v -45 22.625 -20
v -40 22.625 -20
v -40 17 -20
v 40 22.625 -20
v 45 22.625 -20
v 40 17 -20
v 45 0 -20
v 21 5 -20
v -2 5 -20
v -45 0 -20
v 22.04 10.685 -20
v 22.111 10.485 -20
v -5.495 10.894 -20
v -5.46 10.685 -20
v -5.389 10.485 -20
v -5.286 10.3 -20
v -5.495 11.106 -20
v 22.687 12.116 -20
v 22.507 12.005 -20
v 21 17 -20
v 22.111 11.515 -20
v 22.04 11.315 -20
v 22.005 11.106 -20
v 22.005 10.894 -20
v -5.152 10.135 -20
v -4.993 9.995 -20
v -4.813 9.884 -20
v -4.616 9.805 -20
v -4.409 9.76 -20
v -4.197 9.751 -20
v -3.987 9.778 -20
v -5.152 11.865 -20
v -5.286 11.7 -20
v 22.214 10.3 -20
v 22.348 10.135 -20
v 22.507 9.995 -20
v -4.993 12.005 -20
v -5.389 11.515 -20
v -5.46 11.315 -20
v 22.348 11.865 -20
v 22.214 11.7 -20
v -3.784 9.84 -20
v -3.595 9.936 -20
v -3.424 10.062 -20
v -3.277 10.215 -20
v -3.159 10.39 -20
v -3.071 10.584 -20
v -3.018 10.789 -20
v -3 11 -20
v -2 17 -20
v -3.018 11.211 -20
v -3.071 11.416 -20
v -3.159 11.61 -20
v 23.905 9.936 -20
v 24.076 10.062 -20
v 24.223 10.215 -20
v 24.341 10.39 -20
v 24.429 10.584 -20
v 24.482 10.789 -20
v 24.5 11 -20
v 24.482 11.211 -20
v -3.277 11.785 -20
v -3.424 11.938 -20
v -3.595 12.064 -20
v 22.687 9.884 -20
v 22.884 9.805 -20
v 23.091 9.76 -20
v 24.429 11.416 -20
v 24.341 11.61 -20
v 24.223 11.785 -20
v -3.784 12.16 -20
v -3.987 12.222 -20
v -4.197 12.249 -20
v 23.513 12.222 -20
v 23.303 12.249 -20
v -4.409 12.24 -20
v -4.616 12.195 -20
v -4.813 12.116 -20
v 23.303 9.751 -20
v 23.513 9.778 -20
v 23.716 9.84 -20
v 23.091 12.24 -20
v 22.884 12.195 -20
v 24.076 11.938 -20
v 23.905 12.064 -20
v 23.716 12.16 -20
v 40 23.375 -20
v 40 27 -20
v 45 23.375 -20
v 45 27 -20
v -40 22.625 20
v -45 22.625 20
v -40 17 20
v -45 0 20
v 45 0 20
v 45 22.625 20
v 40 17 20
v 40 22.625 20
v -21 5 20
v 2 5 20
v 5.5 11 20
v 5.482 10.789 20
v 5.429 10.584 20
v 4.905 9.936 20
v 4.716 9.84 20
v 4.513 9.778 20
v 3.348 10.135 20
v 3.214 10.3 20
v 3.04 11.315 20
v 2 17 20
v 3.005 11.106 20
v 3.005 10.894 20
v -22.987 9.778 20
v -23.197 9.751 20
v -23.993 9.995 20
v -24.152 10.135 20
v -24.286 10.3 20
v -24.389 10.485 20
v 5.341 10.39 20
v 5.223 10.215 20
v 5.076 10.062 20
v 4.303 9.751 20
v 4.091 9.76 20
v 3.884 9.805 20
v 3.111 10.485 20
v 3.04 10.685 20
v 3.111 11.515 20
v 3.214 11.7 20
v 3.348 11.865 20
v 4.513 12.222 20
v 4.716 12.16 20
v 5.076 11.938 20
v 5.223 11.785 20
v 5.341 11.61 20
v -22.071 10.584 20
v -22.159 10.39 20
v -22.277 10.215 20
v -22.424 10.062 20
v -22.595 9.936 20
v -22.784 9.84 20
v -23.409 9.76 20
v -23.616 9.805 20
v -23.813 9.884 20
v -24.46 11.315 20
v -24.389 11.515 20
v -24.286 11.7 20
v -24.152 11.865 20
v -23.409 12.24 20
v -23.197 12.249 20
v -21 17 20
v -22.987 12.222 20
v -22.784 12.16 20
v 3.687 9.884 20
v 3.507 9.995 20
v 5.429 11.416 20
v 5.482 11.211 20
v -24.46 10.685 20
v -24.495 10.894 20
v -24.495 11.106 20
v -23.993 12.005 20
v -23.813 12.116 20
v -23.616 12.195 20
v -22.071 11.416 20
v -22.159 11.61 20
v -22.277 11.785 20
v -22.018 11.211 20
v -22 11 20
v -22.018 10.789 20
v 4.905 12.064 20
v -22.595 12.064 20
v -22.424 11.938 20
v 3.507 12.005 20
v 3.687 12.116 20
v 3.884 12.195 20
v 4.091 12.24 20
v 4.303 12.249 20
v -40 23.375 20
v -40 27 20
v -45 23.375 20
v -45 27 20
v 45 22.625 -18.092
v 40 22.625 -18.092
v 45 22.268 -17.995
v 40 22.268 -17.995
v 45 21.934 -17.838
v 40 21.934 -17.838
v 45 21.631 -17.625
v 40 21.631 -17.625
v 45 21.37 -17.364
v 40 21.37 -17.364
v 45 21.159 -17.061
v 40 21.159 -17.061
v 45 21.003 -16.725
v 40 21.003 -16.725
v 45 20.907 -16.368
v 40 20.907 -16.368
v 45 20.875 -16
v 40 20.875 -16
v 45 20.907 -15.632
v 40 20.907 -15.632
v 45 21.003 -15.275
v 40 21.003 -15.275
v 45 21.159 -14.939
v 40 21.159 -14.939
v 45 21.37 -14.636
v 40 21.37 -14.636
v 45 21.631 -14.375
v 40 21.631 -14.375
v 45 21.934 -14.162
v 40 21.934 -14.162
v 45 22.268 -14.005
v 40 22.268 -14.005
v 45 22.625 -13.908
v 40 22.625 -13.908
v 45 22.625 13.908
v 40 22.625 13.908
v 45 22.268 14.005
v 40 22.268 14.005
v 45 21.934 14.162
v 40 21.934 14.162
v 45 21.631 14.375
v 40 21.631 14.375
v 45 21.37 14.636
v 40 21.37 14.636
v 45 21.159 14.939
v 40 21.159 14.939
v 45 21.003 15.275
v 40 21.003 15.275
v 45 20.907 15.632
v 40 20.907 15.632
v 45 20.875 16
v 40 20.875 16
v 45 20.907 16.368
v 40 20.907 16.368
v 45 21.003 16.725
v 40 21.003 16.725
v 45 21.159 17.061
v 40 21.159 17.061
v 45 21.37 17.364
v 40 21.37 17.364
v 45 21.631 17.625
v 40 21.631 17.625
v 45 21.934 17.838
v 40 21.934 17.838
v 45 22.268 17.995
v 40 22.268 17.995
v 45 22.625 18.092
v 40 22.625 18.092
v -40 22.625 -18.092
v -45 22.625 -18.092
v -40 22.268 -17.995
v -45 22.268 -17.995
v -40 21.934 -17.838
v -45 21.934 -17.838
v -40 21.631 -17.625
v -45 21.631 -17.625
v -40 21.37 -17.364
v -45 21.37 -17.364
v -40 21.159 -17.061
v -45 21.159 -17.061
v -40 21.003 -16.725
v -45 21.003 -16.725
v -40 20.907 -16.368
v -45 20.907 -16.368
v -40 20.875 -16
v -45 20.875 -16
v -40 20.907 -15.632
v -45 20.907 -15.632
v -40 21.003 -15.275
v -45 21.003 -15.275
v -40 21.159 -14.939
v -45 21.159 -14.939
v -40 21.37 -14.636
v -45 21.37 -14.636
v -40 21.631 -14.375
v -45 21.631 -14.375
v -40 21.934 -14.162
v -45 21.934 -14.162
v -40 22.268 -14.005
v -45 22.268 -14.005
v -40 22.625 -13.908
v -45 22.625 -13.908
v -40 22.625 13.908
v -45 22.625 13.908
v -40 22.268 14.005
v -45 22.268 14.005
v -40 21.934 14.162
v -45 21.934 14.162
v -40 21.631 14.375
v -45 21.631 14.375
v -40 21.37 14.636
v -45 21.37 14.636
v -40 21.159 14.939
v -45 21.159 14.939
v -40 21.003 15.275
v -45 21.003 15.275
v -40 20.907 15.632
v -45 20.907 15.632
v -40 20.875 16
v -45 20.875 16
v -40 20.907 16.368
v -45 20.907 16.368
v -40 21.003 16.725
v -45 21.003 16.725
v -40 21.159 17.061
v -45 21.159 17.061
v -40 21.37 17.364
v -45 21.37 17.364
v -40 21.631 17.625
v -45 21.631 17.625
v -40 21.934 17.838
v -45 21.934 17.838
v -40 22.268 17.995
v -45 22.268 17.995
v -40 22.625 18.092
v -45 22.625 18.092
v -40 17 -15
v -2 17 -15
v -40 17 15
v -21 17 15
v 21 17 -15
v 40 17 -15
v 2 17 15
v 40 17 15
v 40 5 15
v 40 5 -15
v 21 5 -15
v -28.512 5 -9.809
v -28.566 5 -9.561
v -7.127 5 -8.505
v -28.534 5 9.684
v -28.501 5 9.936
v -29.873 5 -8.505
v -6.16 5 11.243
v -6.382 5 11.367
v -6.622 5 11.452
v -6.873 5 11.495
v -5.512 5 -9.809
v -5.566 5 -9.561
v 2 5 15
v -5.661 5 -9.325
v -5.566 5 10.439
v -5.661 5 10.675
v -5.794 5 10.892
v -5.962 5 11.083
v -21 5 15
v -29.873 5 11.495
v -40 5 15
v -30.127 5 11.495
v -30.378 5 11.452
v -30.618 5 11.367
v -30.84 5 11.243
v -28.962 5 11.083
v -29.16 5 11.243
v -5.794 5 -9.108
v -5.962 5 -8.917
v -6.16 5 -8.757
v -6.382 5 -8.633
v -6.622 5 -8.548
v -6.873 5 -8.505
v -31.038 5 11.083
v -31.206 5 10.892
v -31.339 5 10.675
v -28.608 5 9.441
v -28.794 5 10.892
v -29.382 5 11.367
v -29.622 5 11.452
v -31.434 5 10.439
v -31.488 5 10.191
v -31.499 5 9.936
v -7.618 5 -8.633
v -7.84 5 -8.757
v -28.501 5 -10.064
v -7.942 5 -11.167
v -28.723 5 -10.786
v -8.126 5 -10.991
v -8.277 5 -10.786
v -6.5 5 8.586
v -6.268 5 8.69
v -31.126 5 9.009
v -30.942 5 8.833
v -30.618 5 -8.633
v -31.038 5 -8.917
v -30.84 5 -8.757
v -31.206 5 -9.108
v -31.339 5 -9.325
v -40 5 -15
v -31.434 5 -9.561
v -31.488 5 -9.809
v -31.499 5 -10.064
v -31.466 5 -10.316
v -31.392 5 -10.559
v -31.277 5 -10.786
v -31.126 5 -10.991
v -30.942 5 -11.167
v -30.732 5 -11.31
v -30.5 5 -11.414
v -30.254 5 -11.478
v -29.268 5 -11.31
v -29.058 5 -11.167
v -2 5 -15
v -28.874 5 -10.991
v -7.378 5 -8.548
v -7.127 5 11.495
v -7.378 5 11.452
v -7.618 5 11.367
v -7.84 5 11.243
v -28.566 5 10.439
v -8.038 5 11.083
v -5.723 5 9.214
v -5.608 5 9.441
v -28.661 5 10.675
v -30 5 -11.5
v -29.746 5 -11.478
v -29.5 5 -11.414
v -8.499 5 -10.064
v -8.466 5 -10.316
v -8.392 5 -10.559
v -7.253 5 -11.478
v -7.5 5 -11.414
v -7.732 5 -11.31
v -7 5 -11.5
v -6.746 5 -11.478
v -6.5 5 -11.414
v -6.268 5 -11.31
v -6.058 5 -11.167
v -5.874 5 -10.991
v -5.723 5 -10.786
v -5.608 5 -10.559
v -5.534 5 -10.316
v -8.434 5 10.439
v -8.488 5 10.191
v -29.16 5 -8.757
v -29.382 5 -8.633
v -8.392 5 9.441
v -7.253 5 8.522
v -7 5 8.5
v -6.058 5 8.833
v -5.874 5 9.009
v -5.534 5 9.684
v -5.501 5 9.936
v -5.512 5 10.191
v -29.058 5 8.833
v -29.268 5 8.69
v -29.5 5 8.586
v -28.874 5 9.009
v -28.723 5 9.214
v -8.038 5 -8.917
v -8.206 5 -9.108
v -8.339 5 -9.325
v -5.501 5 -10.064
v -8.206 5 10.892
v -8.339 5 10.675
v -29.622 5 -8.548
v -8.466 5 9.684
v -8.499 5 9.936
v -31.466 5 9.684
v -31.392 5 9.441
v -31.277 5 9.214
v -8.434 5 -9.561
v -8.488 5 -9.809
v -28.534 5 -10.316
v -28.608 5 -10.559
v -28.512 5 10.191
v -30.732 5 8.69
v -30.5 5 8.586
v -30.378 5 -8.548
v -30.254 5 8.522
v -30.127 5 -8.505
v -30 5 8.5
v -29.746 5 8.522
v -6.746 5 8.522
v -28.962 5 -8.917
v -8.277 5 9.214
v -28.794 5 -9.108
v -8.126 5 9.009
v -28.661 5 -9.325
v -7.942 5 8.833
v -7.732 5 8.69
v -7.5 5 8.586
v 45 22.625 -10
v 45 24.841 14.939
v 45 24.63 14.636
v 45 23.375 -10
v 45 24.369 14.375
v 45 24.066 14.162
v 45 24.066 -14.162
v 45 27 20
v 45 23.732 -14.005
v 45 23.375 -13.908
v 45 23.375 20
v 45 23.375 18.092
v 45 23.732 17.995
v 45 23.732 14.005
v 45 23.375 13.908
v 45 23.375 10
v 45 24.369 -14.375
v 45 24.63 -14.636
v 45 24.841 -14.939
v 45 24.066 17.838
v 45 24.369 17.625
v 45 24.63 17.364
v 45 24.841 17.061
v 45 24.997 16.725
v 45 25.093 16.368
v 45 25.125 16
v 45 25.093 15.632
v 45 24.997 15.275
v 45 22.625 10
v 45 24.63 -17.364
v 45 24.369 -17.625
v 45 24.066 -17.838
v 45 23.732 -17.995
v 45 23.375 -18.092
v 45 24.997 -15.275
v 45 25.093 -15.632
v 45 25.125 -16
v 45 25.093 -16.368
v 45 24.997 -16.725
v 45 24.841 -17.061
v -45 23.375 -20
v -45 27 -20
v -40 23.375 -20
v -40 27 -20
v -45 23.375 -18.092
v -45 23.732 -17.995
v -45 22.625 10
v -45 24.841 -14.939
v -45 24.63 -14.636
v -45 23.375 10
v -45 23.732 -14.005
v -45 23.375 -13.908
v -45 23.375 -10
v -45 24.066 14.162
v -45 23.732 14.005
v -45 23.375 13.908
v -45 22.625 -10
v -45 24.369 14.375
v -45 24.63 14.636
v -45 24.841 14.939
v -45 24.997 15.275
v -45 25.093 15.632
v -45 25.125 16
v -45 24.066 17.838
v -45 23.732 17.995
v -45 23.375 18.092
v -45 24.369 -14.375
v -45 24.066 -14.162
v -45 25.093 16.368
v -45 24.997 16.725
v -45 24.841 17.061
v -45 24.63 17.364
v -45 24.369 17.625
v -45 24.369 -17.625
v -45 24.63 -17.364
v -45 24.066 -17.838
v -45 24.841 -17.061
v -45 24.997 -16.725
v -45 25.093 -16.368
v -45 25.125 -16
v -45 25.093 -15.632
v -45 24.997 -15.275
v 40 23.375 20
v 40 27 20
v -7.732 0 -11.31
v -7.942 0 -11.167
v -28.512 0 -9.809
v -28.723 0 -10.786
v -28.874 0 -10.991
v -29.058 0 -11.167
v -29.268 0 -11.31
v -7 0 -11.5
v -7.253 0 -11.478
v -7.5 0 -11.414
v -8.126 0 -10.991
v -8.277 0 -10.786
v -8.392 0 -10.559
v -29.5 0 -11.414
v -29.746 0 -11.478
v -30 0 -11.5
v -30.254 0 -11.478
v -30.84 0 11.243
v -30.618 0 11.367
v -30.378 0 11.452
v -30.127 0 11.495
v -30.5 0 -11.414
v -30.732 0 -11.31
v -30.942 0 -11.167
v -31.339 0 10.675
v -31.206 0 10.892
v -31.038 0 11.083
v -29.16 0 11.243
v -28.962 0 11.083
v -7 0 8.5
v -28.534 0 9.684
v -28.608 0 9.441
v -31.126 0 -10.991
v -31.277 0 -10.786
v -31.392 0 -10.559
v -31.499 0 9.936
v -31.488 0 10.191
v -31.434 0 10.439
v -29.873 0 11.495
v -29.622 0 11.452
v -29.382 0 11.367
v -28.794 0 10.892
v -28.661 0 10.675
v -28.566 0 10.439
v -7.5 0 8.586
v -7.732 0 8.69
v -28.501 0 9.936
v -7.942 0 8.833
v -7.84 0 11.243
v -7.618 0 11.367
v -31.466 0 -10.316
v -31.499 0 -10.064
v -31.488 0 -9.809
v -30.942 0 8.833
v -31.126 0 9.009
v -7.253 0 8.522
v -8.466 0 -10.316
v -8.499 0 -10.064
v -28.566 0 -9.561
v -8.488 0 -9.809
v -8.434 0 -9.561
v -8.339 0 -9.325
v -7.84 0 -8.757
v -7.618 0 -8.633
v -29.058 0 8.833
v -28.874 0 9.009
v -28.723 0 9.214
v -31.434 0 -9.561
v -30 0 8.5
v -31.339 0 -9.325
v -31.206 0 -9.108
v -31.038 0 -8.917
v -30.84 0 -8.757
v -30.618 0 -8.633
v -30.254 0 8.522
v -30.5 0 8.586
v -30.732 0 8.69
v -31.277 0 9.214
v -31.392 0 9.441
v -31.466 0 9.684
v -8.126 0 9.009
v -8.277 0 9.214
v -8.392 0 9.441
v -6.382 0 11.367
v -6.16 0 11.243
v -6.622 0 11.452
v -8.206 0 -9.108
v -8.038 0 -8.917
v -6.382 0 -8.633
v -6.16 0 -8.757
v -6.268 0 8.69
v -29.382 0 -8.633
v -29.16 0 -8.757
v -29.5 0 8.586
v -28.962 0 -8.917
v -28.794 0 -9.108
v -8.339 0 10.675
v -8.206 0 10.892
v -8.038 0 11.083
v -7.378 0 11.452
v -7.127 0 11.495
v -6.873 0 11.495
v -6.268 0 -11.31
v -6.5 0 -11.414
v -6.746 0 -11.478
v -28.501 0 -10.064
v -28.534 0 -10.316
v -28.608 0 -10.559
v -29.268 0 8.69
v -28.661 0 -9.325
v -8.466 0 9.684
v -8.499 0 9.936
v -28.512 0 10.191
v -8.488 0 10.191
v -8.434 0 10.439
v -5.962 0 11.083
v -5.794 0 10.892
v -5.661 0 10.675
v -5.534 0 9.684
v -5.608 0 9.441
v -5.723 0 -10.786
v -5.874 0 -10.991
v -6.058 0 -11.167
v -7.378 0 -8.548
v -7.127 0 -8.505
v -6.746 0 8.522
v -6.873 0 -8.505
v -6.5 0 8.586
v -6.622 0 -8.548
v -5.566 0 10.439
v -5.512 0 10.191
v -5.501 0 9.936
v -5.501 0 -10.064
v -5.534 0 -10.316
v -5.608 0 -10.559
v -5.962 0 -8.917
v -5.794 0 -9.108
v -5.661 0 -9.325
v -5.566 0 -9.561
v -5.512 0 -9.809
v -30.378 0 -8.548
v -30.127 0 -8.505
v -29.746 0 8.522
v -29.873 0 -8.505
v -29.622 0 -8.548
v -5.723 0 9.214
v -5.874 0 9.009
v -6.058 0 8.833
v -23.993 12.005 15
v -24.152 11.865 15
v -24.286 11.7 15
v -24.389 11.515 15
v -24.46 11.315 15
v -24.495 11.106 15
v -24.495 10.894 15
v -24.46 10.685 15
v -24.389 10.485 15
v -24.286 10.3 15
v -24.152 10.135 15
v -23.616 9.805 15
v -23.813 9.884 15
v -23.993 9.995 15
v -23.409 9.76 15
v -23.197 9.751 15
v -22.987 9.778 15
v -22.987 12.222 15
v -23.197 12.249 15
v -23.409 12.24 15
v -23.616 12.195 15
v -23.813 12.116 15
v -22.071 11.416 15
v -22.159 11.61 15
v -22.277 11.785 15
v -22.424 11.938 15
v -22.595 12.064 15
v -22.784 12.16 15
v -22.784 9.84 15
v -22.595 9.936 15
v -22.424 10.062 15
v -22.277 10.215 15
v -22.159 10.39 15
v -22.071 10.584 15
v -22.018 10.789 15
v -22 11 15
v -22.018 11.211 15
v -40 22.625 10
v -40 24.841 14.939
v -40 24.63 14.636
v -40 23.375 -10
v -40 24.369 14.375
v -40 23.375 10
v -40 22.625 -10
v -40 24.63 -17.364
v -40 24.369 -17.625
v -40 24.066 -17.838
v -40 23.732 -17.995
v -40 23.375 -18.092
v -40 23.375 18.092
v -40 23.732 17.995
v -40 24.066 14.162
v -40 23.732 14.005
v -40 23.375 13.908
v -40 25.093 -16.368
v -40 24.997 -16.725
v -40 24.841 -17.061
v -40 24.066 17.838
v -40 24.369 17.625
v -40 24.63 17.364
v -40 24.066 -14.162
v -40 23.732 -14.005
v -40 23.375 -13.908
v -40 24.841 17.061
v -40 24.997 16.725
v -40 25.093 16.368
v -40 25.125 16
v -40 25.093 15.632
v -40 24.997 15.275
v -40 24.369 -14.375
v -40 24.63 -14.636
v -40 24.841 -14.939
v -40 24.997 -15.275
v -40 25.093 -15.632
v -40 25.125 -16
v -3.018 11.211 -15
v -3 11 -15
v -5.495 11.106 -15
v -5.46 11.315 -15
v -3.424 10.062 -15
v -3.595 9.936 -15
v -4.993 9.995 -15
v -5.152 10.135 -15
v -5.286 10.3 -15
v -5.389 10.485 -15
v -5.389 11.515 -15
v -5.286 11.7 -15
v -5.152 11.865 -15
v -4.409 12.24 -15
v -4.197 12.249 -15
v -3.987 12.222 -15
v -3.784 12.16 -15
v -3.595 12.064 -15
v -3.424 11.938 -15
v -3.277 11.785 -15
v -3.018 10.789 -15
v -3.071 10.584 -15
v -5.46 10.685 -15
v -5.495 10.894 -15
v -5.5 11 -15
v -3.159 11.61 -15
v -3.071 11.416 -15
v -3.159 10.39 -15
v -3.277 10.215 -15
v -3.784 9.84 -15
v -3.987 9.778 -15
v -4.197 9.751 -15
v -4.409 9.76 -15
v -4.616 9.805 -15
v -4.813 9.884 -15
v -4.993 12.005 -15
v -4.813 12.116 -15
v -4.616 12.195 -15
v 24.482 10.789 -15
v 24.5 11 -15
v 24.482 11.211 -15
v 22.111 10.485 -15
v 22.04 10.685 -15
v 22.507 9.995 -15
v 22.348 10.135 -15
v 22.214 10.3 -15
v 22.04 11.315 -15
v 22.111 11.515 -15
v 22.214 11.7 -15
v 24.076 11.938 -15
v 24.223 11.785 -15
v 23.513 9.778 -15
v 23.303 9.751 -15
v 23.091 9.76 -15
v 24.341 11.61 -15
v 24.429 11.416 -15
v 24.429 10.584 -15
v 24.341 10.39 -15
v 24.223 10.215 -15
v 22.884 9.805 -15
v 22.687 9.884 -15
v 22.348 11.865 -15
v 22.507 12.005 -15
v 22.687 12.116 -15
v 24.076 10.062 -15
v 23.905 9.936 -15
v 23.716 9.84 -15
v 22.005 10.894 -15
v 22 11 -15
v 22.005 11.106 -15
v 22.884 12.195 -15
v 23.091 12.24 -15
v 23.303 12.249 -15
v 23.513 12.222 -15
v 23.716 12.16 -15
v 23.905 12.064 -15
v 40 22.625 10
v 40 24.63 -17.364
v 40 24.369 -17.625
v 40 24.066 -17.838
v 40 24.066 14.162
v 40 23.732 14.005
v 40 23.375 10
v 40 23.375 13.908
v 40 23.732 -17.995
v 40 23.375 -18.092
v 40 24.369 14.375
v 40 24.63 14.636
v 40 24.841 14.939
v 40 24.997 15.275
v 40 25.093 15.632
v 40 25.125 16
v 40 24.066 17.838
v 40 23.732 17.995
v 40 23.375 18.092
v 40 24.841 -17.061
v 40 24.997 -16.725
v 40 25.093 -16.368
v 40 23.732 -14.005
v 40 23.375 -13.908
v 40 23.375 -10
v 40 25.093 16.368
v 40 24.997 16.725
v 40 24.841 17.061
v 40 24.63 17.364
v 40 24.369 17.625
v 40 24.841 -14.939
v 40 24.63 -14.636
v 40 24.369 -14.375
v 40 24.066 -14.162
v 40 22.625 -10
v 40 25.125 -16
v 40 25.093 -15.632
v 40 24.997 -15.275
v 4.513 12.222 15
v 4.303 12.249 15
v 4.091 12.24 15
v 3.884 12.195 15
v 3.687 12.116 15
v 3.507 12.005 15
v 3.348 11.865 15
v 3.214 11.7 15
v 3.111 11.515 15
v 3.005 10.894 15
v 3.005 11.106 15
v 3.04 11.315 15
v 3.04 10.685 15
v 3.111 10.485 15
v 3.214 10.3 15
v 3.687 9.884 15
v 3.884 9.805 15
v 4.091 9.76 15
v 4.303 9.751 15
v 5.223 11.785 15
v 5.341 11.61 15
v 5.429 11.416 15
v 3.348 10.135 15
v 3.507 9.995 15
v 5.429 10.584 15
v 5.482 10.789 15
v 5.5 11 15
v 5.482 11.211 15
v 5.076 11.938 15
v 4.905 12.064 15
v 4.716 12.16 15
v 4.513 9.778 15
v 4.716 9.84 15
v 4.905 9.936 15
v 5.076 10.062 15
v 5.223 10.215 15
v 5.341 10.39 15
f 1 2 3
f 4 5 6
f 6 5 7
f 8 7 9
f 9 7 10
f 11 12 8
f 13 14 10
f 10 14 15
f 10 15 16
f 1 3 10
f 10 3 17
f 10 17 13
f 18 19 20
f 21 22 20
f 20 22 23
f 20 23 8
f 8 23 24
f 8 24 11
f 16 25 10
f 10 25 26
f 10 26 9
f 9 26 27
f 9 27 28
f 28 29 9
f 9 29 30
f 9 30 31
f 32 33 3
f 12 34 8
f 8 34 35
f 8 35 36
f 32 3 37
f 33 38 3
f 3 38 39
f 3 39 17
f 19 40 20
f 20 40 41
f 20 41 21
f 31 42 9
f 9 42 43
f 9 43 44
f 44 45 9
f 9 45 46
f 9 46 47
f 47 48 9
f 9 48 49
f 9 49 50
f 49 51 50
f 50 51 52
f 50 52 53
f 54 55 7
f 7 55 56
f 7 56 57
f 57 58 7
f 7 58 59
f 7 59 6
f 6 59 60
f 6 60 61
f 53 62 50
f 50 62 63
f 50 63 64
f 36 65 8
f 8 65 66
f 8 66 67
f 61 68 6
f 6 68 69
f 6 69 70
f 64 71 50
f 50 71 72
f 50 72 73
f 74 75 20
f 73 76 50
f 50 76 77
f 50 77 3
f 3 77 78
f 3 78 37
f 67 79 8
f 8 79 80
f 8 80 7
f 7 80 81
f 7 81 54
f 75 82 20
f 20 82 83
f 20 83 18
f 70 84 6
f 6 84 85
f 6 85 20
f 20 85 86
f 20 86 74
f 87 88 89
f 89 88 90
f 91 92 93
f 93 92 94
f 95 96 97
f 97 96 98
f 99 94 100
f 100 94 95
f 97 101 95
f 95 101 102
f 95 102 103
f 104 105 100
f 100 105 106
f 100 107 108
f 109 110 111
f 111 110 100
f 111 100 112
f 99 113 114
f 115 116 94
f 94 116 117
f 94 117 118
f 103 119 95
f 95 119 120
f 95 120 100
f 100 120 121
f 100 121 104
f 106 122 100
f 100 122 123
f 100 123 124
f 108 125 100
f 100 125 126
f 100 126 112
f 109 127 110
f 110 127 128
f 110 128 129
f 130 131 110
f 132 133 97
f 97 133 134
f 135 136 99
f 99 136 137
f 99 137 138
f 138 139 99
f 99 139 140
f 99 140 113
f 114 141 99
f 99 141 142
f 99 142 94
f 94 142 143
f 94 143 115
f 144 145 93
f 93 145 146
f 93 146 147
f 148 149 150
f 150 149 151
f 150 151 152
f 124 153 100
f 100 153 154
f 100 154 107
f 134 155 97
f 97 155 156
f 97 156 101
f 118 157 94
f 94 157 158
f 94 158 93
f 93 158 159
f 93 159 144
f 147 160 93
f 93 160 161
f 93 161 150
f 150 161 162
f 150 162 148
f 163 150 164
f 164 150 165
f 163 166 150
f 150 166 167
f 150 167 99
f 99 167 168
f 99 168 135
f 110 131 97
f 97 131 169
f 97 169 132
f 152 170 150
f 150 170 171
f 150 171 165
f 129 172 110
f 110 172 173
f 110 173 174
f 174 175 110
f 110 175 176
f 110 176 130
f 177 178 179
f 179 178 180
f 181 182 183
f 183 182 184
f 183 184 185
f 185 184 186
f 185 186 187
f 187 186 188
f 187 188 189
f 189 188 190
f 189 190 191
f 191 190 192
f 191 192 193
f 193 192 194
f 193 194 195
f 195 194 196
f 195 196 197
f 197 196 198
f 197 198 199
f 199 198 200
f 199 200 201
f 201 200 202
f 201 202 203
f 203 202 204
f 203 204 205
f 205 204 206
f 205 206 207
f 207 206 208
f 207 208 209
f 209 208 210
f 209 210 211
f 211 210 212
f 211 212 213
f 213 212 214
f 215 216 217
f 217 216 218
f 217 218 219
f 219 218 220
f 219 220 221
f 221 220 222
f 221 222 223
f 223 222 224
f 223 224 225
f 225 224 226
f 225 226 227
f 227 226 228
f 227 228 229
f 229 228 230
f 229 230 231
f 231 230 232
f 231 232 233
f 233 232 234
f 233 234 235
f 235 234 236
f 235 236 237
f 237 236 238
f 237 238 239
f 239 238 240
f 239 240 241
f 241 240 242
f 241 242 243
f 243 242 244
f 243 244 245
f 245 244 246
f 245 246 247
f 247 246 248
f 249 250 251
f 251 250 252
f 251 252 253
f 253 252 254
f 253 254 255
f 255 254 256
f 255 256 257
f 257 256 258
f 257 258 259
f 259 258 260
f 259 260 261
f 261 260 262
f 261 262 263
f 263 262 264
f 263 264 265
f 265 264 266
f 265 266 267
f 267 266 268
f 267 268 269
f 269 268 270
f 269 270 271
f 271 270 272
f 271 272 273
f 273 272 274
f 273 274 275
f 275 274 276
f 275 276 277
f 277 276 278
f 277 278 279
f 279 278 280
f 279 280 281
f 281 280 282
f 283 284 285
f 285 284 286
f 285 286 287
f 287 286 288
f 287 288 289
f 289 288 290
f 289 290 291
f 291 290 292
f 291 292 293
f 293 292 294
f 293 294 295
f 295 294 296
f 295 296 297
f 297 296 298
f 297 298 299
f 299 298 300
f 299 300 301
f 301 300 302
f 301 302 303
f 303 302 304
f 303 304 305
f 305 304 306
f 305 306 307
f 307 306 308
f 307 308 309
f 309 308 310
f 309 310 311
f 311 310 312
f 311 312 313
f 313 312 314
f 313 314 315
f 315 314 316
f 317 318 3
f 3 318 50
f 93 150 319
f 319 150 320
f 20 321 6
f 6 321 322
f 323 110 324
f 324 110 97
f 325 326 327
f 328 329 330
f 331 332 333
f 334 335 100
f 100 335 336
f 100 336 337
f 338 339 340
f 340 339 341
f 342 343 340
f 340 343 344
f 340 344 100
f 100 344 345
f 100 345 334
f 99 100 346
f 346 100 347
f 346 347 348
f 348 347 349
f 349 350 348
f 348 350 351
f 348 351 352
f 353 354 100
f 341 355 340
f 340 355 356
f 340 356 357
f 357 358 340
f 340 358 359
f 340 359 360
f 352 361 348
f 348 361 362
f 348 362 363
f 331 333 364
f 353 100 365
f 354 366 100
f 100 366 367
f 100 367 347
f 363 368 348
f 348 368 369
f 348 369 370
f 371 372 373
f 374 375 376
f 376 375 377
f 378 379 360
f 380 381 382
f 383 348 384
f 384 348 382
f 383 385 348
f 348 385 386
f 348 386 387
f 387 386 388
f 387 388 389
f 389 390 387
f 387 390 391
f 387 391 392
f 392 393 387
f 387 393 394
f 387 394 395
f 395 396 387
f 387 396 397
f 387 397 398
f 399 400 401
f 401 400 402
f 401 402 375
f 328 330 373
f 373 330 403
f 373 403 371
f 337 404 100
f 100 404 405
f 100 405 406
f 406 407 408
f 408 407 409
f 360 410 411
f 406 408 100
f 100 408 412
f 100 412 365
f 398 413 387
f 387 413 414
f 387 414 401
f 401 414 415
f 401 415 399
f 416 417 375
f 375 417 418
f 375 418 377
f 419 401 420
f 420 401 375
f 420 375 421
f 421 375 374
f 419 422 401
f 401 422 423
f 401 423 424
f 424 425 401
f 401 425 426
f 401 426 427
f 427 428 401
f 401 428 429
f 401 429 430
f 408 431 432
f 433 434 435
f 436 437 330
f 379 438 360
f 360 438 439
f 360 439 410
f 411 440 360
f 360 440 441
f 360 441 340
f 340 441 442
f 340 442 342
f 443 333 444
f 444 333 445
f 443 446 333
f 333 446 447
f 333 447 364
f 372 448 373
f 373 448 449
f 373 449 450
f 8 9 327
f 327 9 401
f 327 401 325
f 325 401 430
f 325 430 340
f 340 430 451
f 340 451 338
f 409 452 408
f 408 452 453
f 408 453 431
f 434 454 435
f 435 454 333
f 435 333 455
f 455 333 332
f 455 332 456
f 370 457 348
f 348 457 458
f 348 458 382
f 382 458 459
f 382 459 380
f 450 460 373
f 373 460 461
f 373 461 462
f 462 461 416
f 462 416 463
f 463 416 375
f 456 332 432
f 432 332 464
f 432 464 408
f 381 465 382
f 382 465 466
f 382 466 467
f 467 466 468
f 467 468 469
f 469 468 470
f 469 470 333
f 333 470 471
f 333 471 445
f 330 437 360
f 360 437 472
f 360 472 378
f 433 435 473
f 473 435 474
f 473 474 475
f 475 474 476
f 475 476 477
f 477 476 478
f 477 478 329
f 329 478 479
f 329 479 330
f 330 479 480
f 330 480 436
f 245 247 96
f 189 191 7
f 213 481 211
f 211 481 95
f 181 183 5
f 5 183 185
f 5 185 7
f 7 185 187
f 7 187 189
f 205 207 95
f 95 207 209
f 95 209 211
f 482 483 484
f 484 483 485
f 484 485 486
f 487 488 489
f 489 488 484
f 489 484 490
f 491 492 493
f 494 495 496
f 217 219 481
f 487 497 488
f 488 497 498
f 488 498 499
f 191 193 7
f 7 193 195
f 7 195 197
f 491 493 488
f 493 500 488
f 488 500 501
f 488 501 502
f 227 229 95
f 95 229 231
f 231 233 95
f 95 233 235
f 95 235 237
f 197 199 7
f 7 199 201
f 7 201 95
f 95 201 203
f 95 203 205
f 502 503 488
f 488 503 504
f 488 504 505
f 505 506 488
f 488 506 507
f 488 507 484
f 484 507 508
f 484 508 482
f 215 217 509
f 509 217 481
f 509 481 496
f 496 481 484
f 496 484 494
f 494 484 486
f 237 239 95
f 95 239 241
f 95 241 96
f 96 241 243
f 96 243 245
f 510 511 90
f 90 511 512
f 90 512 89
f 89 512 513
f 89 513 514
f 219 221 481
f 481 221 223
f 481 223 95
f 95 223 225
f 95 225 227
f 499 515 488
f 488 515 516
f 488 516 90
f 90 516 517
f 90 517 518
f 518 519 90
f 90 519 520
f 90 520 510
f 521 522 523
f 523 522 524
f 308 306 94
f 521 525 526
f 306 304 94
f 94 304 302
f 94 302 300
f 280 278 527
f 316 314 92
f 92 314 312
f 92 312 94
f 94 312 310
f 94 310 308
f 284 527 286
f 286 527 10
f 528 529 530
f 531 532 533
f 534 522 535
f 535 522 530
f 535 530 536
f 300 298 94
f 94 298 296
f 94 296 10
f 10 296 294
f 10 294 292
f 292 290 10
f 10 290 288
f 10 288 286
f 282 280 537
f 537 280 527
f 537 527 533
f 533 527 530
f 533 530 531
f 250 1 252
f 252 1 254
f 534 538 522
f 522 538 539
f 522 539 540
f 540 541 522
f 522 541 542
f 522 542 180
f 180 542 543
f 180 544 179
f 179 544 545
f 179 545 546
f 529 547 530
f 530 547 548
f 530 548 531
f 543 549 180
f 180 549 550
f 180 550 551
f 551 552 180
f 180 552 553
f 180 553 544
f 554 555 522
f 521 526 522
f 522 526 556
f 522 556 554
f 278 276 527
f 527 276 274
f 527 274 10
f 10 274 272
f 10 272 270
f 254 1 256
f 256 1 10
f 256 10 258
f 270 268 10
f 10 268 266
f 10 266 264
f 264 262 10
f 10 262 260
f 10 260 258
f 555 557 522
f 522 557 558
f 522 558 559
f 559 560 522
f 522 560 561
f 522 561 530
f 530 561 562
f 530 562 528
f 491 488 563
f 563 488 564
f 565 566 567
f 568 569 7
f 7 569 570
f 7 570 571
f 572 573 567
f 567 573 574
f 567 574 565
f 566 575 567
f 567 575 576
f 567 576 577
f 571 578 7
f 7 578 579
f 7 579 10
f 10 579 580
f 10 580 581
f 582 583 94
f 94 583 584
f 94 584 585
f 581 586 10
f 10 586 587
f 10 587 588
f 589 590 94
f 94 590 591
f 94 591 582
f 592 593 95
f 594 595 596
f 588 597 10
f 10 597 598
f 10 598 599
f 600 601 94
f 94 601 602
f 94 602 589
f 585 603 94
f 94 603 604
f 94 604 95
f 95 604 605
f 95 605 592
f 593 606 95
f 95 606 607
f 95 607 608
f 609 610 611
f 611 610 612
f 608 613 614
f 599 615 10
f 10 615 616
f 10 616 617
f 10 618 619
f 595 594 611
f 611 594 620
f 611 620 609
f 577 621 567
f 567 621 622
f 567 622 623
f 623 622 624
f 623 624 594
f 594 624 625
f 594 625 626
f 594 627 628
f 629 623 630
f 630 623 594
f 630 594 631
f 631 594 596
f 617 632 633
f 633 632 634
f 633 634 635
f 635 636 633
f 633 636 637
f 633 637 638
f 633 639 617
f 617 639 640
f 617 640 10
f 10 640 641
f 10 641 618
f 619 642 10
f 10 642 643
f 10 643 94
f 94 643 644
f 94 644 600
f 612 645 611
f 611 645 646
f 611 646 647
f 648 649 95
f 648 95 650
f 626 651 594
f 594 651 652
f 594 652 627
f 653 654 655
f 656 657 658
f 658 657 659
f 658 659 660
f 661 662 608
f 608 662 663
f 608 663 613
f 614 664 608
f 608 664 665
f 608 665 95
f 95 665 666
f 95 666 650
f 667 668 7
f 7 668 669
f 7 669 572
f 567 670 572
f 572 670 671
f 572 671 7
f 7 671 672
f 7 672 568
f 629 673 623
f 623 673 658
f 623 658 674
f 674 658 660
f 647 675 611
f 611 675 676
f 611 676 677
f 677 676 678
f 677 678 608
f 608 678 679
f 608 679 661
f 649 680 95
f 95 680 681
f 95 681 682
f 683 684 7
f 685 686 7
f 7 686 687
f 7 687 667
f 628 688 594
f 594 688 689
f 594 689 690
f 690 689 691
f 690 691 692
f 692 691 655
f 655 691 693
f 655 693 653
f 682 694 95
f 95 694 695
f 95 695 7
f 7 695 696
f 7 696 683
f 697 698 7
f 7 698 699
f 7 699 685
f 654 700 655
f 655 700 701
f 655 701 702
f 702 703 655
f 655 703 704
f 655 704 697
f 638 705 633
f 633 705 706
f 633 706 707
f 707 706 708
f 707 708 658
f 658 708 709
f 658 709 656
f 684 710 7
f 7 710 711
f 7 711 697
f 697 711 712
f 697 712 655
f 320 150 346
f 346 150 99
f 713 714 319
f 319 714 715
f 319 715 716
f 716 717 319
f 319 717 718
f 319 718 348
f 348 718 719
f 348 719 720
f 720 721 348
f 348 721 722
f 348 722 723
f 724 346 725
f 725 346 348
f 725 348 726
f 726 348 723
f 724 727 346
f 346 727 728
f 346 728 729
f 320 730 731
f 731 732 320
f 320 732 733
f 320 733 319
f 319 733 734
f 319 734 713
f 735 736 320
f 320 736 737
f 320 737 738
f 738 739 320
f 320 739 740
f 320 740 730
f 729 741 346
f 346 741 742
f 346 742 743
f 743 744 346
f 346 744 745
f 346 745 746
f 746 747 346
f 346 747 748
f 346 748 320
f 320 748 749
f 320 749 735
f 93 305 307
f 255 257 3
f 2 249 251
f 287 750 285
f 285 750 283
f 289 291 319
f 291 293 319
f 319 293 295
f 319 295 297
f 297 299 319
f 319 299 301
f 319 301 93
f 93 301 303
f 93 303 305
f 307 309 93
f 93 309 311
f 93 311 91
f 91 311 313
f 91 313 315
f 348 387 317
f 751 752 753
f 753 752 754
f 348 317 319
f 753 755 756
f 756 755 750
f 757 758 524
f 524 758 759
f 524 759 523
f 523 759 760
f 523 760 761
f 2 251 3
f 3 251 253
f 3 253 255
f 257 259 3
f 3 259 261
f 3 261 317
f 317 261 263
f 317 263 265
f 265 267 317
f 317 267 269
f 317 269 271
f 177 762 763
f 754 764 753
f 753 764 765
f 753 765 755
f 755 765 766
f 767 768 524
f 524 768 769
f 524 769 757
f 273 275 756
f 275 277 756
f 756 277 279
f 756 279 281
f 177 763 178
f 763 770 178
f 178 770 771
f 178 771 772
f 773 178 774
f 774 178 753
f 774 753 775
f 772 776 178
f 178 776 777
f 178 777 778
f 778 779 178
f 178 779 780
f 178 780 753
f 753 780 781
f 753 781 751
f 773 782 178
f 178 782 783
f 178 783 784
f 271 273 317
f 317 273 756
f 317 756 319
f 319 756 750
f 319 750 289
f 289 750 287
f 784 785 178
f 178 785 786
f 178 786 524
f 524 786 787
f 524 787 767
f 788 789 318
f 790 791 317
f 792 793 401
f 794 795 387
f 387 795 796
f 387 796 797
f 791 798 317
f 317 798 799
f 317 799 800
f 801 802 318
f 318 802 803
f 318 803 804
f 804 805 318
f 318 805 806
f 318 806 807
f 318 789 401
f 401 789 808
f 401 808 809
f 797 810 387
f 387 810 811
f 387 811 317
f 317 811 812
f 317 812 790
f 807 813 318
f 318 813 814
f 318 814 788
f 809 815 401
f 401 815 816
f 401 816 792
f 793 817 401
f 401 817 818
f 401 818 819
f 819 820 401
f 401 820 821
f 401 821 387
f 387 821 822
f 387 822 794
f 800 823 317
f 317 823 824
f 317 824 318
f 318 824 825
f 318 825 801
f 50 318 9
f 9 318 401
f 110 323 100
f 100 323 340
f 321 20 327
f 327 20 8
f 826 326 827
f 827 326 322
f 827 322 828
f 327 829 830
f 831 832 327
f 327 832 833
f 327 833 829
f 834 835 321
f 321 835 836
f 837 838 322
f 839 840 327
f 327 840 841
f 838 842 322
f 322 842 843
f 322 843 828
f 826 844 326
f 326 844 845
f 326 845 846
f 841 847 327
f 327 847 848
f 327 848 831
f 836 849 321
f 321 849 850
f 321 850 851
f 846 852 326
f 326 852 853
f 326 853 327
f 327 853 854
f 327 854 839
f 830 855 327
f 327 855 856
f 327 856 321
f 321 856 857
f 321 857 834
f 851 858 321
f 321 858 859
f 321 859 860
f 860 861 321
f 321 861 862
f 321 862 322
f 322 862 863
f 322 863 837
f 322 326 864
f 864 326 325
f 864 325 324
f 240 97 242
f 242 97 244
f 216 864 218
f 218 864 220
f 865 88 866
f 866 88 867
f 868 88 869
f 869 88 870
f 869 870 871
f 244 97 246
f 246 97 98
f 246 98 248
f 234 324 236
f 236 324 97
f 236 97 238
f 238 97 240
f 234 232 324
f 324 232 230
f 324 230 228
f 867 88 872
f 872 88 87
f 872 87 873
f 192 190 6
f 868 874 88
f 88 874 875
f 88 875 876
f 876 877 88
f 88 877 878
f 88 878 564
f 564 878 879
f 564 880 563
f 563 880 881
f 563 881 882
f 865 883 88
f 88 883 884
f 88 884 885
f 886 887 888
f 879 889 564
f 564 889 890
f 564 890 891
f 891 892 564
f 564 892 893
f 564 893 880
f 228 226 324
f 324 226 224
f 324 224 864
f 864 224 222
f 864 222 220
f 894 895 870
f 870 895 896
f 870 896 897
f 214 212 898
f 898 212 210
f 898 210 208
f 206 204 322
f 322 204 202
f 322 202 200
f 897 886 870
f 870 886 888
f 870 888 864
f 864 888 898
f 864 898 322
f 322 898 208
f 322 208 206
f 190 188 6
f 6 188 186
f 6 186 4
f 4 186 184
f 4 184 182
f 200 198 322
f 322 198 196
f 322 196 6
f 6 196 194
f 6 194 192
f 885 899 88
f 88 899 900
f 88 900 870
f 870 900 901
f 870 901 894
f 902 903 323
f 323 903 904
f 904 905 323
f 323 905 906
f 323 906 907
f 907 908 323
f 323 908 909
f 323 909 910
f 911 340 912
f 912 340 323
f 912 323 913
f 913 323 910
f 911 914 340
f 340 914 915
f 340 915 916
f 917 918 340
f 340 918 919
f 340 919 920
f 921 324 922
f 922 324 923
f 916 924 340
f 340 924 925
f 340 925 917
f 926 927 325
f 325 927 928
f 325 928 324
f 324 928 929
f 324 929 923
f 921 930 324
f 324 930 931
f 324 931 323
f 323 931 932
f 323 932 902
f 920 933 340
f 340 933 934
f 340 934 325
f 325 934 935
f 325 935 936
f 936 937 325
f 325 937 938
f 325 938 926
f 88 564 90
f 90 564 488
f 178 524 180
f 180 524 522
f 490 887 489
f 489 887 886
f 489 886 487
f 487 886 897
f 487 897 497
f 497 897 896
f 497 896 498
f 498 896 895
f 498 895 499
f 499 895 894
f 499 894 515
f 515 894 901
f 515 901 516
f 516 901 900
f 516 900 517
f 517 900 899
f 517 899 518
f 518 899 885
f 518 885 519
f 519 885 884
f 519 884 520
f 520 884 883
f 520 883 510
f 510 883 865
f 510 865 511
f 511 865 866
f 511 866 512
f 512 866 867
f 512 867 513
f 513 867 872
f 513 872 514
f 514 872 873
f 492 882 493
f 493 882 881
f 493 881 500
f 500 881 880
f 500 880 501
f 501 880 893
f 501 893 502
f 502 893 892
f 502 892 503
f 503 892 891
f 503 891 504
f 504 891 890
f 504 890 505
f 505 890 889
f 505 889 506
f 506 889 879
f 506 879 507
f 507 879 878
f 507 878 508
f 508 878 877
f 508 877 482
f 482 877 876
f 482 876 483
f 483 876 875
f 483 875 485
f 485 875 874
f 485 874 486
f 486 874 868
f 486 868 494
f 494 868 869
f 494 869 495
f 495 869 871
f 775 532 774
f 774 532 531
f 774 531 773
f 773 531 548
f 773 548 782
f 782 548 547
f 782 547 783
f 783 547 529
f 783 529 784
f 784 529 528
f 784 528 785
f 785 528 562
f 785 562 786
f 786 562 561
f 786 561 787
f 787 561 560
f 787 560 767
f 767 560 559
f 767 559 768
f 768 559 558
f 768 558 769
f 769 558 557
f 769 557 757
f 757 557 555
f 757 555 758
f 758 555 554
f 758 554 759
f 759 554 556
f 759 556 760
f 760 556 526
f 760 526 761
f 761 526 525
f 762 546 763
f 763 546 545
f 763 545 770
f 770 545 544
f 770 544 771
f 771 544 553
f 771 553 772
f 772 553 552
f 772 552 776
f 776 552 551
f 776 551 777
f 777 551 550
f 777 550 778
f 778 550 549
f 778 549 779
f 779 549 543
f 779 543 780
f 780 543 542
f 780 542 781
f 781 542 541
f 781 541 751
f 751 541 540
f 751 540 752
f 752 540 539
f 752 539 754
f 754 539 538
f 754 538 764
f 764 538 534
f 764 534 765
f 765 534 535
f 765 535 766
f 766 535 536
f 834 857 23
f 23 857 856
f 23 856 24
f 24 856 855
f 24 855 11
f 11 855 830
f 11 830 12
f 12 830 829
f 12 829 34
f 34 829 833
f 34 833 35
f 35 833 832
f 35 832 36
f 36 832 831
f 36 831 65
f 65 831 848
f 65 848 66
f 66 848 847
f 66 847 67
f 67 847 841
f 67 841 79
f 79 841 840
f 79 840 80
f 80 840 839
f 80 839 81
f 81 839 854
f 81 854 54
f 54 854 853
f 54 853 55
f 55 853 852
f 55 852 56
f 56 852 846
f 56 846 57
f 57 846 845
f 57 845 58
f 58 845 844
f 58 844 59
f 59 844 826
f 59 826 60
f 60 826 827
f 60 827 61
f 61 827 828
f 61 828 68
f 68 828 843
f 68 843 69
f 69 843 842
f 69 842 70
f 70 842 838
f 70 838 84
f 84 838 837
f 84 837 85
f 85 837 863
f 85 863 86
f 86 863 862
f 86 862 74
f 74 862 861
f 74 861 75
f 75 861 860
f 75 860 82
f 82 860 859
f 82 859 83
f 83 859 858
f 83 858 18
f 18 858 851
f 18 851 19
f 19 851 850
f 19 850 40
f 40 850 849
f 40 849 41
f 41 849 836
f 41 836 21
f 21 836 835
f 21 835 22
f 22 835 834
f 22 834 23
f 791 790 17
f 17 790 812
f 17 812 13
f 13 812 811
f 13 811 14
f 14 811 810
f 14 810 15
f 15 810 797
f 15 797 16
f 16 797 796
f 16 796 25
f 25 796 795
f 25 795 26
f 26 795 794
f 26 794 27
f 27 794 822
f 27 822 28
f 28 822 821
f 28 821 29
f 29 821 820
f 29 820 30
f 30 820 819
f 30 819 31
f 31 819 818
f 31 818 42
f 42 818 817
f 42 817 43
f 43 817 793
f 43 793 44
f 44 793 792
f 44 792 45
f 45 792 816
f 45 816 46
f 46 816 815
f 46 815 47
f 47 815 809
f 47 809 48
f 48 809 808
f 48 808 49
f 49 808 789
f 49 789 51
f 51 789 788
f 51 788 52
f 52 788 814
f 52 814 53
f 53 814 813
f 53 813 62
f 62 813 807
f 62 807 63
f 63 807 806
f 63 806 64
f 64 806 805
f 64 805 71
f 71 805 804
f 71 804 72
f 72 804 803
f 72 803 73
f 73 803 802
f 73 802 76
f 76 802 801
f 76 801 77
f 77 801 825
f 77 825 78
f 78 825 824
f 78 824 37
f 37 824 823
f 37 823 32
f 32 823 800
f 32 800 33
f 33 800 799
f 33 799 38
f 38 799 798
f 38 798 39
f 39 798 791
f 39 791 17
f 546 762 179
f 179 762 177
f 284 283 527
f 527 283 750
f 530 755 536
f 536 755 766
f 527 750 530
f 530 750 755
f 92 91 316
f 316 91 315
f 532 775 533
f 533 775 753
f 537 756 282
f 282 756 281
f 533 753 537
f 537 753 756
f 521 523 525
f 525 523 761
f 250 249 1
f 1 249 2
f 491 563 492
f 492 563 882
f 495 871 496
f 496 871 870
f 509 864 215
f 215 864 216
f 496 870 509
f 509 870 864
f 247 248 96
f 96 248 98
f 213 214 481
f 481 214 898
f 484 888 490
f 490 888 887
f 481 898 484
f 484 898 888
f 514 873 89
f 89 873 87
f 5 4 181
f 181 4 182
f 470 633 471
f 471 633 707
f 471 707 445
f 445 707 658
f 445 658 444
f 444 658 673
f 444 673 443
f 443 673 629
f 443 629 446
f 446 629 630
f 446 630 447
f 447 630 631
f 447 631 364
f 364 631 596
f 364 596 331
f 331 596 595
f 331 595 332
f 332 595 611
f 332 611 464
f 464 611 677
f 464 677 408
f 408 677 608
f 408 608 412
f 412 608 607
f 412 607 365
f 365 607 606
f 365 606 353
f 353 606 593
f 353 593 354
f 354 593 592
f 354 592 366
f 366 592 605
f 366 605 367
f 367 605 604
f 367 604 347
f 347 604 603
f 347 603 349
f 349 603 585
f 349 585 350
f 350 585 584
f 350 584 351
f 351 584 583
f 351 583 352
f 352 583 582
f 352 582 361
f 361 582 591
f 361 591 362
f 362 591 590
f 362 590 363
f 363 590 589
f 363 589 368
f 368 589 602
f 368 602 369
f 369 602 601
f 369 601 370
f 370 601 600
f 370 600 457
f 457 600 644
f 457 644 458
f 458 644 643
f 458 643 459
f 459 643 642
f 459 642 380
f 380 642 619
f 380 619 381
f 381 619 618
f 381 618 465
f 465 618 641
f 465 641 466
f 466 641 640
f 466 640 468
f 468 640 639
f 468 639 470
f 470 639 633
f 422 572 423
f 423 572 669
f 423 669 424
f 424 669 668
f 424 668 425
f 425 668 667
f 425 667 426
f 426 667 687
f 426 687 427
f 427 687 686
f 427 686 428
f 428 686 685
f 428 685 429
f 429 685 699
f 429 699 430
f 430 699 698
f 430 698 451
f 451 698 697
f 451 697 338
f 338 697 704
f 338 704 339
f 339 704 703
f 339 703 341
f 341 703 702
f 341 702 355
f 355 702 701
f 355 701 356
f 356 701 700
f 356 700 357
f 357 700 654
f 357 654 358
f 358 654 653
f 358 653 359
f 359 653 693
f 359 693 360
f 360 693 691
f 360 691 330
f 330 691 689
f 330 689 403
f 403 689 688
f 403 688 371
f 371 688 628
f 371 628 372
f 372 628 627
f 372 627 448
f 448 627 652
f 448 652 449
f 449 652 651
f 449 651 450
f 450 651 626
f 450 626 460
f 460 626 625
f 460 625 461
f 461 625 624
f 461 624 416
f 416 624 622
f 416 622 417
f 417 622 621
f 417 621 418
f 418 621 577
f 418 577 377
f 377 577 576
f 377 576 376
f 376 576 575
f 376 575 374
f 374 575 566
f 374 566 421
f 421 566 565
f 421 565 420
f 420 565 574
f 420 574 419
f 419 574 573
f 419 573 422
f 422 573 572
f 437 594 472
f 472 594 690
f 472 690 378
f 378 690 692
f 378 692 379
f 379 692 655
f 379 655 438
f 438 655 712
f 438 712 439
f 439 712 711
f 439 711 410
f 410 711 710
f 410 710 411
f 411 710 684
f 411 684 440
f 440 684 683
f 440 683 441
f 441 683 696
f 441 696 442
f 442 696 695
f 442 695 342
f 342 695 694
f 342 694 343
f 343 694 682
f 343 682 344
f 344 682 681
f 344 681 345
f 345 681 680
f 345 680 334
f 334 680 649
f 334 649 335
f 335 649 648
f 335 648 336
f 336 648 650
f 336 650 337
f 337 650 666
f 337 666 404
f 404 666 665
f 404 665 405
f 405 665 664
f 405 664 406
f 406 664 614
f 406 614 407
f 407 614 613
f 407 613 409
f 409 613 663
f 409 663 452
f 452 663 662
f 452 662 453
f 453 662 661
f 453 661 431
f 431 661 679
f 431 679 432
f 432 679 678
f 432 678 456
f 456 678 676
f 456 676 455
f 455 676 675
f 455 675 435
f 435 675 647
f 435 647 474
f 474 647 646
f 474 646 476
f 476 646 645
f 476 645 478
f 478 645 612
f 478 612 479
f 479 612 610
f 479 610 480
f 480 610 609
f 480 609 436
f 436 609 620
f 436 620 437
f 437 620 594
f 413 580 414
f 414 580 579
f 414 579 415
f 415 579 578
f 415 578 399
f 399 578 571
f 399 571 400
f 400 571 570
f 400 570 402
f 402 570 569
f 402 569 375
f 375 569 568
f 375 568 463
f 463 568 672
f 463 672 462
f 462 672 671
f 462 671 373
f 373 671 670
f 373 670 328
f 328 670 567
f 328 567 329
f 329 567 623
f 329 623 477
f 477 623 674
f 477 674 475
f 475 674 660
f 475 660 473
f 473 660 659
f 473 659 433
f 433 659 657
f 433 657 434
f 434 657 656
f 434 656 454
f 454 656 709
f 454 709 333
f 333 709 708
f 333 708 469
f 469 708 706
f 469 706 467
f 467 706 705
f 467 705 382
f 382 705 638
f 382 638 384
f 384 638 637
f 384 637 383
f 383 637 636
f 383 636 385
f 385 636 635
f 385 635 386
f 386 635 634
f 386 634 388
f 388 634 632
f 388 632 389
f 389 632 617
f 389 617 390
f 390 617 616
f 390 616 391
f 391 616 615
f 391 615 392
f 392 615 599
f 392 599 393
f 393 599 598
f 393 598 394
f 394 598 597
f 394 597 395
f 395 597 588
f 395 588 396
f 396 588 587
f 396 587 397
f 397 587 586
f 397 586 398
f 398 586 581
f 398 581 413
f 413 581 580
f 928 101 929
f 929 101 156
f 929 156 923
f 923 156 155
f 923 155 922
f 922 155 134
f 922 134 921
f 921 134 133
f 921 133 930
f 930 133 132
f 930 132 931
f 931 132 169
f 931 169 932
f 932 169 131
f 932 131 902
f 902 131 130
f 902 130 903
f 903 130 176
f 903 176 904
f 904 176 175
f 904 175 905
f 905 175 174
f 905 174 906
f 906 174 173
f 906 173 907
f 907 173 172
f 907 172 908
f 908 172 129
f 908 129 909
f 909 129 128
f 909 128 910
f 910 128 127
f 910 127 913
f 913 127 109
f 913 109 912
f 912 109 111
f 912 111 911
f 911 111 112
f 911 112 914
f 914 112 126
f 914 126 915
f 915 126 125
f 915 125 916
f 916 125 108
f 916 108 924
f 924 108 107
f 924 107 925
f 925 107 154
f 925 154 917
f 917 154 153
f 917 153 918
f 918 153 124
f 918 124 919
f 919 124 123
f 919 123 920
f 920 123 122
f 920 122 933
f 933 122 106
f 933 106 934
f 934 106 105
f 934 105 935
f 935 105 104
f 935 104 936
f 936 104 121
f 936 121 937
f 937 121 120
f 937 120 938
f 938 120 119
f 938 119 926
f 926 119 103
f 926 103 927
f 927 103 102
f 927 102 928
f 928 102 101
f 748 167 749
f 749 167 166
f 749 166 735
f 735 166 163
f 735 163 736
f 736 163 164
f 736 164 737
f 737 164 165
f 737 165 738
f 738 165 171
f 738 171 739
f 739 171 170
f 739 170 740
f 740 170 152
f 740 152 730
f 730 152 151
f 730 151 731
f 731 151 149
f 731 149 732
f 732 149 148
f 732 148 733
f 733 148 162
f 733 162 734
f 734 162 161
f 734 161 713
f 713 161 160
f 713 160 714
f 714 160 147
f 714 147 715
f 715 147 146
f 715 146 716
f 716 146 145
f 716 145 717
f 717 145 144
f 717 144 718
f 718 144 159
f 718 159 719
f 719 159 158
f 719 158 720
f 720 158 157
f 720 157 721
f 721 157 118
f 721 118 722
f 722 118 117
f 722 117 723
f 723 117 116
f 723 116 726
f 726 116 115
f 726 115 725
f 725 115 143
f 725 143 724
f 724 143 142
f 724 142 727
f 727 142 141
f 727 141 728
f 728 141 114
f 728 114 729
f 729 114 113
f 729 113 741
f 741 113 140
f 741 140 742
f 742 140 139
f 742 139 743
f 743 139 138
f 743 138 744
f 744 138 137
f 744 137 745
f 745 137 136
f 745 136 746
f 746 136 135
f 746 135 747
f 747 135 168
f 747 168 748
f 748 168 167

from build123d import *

# Parameters (mm, degrees)
SKETCH1_W           = 90
SKETCH1_H           = 40
BOSS_EXTRUDE1_DEPTH = 5
BOSS_EXTRUDE2_DEPTH = 12
SKETCH3_W           = 5
SKETCH3_H           = 40
BOSS_EXTRUDE3_DEPTH = 10
SKETCH5_R           = 2.125
CUT_EXTRUDE1_DEPTH  = 91
SKETCH7_R           = 1.25
CUT_EXTRUDE3_DEPTH  = 35
SKETCH8_W           = 10
SKETCH8_H           = 0.75
CUT_EXTRUDE4_DEPTH  = 91
SKETCH12_R          = 1.5
CUT_EXTRUDE6_DEPTH  = 28
SKETCH13_R          = 1.25
CUT_EXTRUDE7_DEPTH  = 5


with BuildPart() as part:
    # Sketch1 → Boss-Extrude1 (new body)
    with BuildSketch(Plane(origin=(0, 0, 0), x_dir=(1, 0, 0), z_dir=(0, 1, 0))):
        Rectangle(SKETCH1_W, SKETCH1_H)
    extrude(amount=BOSS_EXTRUDE1_DEPTH)

    # Sketch2 → Boss-Extrude2 (add)
    with BuildSketch(Plane(origin=(0, 5, 0), x_dir=(1, 0, 0), z_dir=(0, 1, 0))):
        Polygon((-21, -20), (-21, -15), (-40, -15), (-40, 15), (-2, 15), (-2, 20), (-45, 20), (-45, -20), align=None)
        Polygon((2, -15), (40, -15), (40, 15), (21, 15), (21, 20), (45, 20), (45, -20), (2, -20), align=None)
    extrude(amount=BOSS_EXTRUDE2_DEPTH)

    # Sketch3 → Boss-Extrude3 (add)
    with BuildSketch(Plane(origin=(0, 17, 0), x_dir=(1, 0, 0), z_dir=(0, 1, 0))):
        with Locations((42.5, 0)):
            Rectangle(SKETCH3_W, SKETCH3_H)
        with Locations((-42.5, 0)):
            Rectangle(SKETCH3_W, SKETCH3_H)
    extrude(amount=BOSS_EXTRUDE3_DEPTH)

    # Sketch5 → Cut-Extrude1 (cut, through all)
    with BuildSketch(Plane.ZY.offset(45)):
        with Locations((16, 23)):
            Circle(SKETCH5_R)
        with Locations((-16, 23)):
            Circle(SKETCH5_R)
    extrude(amount=-CUT_EXTRUDE1_DEPTH, mode=Mode.SUBTRACT)

    # Sketch7 → Cut-Extrude3 (cut)
    with BuildSketch(Plane(origin=(0, 0, 15), x_dir=(-1, 0, 0), z_dir=(0, 0, -1))):
        with Locations((-23.25, 11)):
            Circle(SKETCH7_R)
        with Locations((4.25, 11)):
            Circle(SKETCH7_R)
    extrude(amount=CUT_EXTRUDE3_DEPTH, mode=Mode.SUBTRACT)

    # Sketch8 → Cut-Extrude4 (cut, through all)
    with BuildSketch(Plane.ZY.offset(45)):
        with Locations((15, 23)):
            Rectangle(SKETCH8_W, SKETCH8_H)
        with Locations((-15, 23)):
            Rectangle(SKETCH8_W, SKETCH8_H)
    extrude(amount=-CUT_EXTRUDE4_DEPTH, mode=Mode.SUBTRACT)

    # Sketch12 → Cut-Extrude6 (cut, through all)
    with BuildSketch(Plane.XZ):
        with Locations((-30, 10)):
            Circle(SKETCH12_R)
        with Locations((-30, -10)):
            Circle(SKETCH12_R)
        with Locations((-7, 10)):
            Circle(SKETCH12_R)
        with Locations((-7, -10)):
            Circle(SKETCH12_R)
    extrude(amount=-CUT_EXTRUDE6_DEPTH, mode=Mode.SUBTRACT)

    # Sketch13 → Cut-Extrude7 (cut)
    with BuildSketch(Plane.XY.offset(20)):
        with Locations((-23.25, 11)):
            Circle(SKETCH13_R)
        with Locations((4.25, 11)):
            Circle(SKETCH13_R)
    extrude(amount=-CUT_EXTRUDE7_DEPTH, mode=Mode.SUBTRACT)


solid = part.part
